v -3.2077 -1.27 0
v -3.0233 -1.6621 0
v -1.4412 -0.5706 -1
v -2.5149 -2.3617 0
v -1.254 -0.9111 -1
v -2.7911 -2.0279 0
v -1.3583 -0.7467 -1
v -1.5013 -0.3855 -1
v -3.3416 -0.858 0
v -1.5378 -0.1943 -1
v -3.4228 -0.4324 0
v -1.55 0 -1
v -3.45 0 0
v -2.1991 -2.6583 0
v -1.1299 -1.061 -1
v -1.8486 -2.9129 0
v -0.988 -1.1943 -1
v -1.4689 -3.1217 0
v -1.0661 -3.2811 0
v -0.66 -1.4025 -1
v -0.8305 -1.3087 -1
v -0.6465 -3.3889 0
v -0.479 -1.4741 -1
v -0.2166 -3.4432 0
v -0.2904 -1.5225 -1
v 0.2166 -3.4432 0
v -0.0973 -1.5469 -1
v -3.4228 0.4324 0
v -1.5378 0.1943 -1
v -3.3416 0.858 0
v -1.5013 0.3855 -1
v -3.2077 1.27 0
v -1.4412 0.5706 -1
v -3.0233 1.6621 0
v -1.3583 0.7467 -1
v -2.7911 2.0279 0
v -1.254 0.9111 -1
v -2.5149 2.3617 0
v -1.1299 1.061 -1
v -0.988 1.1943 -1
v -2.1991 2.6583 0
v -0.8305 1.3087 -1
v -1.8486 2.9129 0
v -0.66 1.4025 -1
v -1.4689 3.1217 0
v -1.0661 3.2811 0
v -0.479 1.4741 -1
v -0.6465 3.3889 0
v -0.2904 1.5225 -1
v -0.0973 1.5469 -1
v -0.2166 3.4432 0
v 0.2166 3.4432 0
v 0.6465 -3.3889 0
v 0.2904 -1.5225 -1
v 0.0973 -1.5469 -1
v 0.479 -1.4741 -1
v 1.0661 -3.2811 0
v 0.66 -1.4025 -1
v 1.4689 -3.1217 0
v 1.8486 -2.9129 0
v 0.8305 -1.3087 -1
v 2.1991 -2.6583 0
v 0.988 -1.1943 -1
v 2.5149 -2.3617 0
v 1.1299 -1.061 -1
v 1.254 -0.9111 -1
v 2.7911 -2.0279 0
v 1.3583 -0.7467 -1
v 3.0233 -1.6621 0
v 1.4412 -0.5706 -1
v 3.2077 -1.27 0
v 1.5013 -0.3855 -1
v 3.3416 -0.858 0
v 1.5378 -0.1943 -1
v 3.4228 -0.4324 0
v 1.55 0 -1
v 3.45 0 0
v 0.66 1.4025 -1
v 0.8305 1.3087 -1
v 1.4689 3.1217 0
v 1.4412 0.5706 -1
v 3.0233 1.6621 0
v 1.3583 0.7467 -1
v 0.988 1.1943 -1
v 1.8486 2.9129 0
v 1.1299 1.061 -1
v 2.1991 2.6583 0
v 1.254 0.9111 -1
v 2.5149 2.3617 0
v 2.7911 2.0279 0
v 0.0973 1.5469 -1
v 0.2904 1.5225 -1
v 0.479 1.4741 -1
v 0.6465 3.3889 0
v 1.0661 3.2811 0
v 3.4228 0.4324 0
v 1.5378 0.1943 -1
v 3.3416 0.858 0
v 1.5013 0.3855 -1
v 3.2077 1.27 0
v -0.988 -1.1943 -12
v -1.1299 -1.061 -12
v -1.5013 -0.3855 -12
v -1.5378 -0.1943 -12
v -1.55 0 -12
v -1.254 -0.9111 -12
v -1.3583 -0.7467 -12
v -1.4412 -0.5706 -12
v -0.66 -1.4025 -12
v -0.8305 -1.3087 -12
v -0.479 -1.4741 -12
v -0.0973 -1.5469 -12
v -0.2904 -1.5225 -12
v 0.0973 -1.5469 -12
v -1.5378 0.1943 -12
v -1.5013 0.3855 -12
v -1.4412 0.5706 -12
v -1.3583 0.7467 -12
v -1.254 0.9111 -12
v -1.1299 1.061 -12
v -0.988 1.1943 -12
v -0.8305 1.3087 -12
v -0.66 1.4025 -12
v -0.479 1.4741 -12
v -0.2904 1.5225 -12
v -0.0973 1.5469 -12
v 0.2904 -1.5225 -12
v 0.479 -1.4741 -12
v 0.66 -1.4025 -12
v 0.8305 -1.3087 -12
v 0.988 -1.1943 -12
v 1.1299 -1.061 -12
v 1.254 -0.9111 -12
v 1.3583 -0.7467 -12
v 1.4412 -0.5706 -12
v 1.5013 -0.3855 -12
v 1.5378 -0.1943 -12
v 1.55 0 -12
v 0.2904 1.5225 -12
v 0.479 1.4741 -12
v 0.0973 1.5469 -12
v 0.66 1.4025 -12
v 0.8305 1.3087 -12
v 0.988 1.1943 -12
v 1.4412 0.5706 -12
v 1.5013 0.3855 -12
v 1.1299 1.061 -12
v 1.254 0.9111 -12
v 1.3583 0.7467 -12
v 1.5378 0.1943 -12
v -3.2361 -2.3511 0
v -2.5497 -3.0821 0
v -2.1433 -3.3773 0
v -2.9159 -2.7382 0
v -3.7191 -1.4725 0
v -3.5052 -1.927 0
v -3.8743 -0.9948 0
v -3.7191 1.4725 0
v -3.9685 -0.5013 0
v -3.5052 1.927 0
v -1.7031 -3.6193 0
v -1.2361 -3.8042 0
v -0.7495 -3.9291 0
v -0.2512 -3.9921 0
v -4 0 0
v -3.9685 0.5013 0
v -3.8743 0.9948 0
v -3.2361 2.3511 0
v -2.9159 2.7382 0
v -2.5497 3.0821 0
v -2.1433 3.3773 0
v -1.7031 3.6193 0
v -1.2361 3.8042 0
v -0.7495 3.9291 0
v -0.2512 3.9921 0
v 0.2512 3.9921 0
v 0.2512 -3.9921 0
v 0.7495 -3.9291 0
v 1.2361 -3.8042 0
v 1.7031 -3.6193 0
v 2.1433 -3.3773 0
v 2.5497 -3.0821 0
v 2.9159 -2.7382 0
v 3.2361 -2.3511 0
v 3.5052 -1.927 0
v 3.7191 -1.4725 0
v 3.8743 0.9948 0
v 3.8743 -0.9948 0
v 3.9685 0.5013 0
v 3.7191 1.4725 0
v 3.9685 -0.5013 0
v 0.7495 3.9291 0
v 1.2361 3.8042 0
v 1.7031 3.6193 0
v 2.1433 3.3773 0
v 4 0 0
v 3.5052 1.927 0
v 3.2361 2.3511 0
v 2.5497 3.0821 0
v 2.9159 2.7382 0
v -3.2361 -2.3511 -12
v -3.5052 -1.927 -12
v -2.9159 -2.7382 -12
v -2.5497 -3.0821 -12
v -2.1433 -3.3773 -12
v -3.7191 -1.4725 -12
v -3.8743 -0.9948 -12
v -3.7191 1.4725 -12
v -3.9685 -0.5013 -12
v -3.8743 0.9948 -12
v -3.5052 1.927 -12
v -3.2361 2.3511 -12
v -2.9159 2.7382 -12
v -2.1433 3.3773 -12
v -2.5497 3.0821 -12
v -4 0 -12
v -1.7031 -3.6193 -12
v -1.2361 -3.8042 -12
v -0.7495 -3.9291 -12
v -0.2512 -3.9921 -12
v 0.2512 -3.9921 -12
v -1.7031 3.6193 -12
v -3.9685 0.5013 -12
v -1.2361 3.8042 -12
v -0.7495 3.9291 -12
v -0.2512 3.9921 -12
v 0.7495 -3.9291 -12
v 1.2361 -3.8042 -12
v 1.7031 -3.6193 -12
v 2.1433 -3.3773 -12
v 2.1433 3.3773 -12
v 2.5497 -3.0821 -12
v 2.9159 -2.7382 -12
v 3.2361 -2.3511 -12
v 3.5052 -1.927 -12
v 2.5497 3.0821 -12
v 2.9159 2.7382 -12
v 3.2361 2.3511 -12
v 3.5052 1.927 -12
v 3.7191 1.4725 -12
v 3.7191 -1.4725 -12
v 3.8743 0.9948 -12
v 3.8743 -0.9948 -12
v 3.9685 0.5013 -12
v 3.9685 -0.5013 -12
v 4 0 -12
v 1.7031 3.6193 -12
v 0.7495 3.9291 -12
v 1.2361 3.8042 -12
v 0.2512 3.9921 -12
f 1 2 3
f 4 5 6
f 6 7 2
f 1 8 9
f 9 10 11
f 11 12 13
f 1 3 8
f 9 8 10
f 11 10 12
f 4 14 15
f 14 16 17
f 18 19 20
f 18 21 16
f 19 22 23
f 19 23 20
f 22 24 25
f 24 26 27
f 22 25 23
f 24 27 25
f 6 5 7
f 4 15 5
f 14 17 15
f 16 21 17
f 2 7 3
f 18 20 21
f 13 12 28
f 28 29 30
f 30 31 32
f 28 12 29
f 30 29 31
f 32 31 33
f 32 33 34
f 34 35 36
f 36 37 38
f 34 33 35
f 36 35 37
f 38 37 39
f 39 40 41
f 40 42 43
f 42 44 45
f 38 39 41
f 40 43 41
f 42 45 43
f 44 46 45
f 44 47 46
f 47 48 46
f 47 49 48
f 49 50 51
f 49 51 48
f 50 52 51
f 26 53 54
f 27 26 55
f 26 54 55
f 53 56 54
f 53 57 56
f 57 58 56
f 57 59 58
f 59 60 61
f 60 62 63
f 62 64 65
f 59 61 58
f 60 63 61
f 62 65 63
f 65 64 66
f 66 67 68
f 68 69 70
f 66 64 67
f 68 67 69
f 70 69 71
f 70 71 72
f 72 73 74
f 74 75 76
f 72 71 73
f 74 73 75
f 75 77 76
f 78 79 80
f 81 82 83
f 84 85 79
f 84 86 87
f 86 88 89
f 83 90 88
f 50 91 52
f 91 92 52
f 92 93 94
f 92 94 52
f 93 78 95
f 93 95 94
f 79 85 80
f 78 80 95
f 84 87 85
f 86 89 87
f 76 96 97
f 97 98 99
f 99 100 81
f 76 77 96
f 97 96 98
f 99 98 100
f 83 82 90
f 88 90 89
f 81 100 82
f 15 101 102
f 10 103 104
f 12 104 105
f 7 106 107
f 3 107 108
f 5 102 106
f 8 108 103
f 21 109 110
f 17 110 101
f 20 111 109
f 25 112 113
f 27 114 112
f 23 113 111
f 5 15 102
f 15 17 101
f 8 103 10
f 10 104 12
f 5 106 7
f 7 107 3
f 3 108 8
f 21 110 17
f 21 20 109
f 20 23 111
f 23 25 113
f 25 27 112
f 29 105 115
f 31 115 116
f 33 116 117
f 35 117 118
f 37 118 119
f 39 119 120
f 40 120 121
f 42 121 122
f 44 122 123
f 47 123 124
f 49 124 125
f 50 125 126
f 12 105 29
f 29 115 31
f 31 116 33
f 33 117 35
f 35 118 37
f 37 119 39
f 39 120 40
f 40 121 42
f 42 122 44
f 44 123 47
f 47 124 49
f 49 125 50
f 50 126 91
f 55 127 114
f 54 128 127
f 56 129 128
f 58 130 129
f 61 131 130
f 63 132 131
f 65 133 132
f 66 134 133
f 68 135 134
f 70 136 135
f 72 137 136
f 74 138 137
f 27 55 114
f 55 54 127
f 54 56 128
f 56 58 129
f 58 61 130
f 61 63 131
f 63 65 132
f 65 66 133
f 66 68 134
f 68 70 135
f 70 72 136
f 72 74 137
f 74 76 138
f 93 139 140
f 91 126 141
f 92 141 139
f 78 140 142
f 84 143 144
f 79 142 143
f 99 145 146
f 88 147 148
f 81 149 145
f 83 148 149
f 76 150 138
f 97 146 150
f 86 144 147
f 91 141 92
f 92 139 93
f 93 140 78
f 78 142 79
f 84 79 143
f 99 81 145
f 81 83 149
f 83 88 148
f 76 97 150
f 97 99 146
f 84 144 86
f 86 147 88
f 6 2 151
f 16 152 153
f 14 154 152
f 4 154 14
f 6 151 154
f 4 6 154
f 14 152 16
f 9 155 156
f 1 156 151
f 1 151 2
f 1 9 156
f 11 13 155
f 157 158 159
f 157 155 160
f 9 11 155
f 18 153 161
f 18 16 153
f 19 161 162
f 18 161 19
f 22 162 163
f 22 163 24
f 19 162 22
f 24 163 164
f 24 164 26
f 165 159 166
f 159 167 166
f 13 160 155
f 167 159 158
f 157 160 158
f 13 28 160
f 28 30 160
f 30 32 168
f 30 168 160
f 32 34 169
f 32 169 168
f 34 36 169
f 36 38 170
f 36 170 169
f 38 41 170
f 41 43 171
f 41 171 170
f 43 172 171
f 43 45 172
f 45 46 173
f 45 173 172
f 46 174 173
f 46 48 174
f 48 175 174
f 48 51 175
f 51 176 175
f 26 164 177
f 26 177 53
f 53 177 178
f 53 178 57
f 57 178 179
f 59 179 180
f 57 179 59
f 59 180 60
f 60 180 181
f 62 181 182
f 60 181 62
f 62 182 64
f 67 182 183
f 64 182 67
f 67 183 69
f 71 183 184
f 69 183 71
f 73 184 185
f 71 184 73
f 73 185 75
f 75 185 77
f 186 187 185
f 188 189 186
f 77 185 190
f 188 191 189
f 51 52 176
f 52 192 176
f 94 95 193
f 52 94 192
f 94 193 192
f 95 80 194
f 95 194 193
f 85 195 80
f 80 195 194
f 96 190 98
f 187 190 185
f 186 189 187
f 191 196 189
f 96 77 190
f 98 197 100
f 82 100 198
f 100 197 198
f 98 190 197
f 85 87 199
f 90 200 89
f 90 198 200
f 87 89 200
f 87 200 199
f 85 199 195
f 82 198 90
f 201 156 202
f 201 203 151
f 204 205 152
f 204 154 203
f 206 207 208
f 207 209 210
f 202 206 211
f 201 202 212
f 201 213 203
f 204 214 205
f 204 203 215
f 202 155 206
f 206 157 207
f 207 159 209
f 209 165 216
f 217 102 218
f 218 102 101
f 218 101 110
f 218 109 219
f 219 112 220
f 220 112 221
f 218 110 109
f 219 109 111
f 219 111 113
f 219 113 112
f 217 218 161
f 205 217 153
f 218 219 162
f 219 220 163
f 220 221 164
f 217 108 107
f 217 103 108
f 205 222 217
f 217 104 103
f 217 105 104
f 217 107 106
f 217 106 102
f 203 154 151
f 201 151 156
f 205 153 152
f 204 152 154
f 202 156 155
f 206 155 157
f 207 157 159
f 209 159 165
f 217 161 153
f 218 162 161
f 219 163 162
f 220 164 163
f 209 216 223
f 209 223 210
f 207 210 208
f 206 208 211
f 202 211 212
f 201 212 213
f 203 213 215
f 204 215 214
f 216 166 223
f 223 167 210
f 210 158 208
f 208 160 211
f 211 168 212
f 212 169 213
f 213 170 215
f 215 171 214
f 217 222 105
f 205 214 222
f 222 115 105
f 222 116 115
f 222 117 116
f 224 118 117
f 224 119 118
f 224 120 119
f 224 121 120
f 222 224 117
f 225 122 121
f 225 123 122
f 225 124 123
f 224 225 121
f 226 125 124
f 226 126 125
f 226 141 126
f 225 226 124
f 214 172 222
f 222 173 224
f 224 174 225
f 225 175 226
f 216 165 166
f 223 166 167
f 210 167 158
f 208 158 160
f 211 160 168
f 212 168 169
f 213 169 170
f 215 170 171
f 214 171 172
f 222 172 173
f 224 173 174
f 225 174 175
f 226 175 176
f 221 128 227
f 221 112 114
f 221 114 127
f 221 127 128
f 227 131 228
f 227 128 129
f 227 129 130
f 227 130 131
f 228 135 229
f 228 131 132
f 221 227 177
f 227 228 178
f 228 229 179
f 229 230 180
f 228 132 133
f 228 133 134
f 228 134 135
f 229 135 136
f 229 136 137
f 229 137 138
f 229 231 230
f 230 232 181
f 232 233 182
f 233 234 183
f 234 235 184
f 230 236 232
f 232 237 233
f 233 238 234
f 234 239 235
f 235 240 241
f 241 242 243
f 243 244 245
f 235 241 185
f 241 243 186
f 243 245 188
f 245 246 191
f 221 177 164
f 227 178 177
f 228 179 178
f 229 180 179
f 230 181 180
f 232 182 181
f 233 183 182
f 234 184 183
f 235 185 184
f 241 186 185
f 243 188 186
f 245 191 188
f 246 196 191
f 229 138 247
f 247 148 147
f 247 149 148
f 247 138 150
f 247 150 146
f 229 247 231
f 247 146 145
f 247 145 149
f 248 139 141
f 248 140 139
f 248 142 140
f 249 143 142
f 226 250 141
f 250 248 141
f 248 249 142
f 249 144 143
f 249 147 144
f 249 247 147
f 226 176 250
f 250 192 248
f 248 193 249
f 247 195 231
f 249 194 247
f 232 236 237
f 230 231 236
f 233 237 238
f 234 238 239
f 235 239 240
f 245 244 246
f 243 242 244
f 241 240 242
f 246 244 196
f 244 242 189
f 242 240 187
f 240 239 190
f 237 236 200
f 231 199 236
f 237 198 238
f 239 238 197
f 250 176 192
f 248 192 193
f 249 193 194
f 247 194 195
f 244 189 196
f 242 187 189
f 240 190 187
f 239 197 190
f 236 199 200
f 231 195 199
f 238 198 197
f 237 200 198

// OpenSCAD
$fn = 50;

difference() {
	union() {
		translate(v = [0, 0, -12.0]) {
			cylinder(h = 15, r = 4.0);
		}
	}
	union() {
		translate(v = [0, 0, 0]) {
			rotate(a = [0, 0, 0]) {
				difference() {
					union() {
						translate(v = [0, 0, -15.0]) {
							cylinder(h = 15, r = 1.25);
						}
						translate(v = [0, 0, -1.0]) {
							cylinder(h = 1.0, r1 = 1.55, r2 = 3.45);
						}
						translate(v = [0, 0, -15.0]) {
							cylinder(h = 15, r = 1.55);
						}
						translate(v = [0, 0, -15.0]) {
							cylinder(h = 15, r = 1.25);
						}
					}
					union();
				}
			}
		}
		#cylinder(h = 3, r = 5.0);
	}
}
